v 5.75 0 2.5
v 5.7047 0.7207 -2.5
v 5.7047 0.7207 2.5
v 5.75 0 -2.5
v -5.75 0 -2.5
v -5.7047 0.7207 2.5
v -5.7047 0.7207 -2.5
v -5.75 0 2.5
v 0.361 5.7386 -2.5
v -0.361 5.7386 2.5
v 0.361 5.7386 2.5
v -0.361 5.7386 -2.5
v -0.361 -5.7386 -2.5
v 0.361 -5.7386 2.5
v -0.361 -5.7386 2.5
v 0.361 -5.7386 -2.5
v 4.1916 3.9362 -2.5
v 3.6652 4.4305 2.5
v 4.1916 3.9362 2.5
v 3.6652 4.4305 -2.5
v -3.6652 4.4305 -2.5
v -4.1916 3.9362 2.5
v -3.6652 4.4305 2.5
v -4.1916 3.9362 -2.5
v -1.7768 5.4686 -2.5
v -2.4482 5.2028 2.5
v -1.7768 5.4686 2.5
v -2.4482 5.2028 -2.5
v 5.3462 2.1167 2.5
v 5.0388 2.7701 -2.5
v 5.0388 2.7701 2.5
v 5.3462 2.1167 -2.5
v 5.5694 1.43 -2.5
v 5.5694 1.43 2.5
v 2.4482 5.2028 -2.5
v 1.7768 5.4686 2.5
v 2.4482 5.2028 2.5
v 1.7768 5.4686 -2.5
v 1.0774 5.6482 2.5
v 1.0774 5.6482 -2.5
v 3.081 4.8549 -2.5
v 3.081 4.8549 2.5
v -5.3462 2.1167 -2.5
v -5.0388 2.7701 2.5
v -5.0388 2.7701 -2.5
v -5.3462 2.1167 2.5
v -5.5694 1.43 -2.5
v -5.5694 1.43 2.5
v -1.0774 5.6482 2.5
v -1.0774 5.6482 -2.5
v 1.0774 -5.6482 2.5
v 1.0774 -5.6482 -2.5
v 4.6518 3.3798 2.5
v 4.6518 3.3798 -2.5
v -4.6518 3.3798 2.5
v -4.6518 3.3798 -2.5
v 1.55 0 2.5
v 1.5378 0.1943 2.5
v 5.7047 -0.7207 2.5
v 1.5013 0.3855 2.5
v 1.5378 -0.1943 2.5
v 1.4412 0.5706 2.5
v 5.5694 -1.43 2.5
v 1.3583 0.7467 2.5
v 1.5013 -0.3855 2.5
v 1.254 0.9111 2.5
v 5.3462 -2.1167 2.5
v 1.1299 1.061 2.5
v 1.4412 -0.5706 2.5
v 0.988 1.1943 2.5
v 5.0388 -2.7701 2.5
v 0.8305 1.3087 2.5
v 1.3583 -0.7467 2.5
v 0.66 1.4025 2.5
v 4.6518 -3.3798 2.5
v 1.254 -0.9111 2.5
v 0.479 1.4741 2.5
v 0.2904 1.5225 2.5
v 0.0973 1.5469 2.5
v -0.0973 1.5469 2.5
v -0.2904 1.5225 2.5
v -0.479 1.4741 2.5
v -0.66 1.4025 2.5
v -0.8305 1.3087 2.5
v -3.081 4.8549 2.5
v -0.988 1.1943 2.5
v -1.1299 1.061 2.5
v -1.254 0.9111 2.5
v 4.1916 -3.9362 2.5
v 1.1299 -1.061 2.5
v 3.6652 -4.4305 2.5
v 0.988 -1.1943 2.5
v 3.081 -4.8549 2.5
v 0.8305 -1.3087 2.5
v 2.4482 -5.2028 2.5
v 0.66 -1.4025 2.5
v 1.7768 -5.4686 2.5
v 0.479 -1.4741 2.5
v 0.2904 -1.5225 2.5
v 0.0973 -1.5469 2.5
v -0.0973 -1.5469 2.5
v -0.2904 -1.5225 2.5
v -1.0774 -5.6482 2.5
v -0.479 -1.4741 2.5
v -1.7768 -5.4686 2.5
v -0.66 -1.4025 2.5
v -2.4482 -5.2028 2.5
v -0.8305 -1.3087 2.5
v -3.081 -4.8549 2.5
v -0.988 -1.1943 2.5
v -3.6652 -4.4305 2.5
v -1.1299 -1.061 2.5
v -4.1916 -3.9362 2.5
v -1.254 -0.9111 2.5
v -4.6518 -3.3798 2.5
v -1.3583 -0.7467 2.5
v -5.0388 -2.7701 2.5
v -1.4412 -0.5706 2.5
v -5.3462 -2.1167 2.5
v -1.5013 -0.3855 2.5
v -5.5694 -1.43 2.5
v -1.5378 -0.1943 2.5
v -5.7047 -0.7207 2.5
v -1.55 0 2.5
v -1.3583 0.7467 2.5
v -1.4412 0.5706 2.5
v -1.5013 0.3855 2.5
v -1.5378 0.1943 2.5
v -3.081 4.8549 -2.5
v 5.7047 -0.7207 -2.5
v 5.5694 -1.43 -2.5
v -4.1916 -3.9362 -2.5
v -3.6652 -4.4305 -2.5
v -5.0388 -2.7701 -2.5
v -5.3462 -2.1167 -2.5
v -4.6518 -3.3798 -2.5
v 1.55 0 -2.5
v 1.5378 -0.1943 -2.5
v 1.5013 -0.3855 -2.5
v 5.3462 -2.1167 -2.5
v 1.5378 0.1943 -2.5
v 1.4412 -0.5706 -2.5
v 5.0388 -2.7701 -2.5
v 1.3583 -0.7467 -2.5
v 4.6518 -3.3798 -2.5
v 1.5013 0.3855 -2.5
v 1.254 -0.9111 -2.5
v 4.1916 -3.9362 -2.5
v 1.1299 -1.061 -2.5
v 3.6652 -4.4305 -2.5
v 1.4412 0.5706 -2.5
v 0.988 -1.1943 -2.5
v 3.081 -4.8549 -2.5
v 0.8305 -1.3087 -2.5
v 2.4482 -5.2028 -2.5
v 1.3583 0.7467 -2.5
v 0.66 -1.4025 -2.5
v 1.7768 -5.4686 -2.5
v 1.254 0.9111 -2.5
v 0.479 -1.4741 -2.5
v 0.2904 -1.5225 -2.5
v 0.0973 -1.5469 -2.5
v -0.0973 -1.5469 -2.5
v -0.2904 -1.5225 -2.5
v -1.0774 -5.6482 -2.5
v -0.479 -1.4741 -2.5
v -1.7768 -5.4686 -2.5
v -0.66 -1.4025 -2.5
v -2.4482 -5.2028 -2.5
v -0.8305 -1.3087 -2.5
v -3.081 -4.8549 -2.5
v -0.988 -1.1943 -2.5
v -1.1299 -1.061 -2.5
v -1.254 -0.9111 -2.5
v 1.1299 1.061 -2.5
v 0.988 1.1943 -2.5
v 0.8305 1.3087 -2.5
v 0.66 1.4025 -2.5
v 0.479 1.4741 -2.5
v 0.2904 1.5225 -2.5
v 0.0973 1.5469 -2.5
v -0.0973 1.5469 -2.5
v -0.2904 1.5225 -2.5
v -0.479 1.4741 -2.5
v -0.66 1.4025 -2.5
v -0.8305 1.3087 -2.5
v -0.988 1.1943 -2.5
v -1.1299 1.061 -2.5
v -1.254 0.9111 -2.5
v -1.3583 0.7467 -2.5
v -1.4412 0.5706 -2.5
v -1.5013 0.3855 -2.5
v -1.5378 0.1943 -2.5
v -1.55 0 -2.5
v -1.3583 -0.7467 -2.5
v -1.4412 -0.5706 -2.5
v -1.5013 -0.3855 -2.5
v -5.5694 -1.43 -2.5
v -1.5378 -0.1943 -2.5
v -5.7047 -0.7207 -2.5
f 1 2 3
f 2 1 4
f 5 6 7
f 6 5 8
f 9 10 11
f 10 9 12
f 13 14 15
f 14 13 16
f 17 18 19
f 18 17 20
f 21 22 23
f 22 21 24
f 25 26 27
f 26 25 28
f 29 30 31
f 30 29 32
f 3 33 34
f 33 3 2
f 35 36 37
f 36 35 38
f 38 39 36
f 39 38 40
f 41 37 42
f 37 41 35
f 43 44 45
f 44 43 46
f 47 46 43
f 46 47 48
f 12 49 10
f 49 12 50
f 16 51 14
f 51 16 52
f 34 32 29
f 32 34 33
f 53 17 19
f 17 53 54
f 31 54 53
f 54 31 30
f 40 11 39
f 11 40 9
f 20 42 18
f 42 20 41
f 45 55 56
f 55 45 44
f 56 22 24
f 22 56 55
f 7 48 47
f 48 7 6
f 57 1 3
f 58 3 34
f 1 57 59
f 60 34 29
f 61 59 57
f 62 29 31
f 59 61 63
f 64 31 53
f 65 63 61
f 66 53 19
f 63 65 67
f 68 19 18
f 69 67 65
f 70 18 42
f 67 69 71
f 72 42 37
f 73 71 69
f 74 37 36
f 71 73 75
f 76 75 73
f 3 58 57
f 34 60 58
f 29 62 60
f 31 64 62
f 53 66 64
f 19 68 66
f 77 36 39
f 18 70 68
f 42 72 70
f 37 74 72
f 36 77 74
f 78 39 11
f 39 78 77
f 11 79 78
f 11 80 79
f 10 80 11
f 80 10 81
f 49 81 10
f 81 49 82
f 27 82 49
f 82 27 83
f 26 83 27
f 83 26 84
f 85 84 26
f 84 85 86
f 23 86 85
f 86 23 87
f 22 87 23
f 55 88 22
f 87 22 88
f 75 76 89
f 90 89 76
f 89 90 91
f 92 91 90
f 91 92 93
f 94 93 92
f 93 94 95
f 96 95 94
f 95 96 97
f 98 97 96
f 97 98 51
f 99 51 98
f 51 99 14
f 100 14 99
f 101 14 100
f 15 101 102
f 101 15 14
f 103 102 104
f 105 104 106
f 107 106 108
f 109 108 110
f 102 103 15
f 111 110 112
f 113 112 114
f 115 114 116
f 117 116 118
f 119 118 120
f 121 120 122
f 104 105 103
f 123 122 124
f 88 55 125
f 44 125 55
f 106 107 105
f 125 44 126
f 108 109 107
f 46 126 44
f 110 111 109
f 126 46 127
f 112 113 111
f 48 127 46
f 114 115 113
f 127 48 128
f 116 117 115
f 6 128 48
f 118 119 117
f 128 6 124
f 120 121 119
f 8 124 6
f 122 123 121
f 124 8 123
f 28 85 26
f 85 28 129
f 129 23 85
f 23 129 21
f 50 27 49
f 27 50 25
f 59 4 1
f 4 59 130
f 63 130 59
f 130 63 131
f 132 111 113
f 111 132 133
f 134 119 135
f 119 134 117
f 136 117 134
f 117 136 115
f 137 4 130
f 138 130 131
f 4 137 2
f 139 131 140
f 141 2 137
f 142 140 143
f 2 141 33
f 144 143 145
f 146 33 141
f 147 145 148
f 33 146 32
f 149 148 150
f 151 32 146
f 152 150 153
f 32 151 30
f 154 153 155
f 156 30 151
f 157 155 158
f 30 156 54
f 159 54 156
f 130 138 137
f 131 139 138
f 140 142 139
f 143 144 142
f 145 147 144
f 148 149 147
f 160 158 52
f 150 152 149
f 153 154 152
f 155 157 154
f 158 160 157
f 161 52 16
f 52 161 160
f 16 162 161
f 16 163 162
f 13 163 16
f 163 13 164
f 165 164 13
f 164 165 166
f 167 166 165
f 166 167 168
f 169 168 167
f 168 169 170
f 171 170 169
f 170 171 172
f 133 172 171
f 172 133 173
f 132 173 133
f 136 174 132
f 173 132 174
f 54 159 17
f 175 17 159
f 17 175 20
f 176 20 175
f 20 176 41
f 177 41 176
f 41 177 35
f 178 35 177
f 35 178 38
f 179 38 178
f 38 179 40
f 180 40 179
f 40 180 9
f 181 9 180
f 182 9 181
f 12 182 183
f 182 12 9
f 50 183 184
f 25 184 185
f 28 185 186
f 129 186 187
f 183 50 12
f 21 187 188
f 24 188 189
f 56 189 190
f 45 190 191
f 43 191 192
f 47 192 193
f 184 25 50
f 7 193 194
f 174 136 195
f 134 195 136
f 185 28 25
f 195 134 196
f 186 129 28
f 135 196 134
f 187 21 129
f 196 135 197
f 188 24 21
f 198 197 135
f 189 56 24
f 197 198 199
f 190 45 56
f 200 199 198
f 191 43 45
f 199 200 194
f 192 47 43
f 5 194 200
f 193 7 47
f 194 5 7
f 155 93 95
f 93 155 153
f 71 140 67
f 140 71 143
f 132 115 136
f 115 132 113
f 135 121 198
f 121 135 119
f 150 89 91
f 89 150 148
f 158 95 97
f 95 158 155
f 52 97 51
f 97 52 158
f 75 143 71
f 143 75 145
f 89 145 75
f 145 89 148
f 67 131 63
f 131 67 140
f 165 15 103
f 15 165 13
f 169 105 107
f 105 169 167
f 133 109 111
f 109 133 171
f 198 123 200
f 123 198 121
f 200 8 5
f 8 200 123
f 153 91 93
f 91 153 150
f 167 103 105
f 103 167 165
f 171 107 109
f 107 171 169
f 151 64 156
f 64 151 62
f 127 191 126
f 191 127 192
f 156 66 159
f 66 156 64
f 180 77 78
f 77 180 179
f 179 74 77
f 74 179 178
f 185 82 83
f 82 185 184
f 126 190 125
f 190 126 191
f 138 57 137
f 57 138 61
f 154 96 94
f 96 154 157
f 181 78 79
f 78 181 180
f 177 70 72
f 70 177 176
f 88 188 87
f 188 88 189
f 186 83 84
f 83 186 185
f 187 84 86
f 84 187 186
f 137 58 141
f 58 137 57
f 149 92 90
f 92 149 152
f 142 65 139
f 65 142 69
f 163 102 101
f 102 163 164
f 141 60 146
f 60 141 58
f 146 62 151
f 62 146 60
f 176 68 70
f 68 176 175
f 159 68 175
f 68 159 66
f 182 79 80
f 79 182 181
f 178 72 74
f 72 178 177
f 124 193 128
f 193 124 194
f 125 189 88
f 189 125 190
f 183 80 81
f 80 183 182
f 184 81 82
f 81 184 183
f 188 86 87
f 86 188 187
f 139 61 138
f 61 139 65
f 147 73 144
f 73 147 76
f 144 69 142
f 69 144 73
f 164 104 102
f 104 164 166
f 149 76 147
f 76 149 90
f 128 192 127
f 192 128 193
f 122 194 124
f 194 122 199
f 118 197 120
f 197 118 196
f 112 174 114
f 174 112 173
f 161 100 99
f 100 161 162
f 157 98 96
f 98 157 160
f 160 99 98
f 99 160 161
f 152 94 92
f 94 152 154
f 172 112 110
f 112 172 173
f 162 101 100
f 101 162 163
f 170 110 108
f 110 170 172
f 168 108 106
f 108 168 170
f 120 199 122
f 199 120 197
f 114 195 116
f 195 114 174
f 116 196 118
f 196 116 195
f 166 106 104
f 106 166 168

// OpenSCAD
$fn = 50;


difference() {
	union() {
		translate(v = [0, 0, -2.5000000000]) {
			cylinder(h = 5, r = 5.7500000000);
		}
	}
	union() {
		translate(v = [0, 0, -100.0000000000]) {
			cylinder(h = 200, r = 1.5500000000);
		}
	}
}
